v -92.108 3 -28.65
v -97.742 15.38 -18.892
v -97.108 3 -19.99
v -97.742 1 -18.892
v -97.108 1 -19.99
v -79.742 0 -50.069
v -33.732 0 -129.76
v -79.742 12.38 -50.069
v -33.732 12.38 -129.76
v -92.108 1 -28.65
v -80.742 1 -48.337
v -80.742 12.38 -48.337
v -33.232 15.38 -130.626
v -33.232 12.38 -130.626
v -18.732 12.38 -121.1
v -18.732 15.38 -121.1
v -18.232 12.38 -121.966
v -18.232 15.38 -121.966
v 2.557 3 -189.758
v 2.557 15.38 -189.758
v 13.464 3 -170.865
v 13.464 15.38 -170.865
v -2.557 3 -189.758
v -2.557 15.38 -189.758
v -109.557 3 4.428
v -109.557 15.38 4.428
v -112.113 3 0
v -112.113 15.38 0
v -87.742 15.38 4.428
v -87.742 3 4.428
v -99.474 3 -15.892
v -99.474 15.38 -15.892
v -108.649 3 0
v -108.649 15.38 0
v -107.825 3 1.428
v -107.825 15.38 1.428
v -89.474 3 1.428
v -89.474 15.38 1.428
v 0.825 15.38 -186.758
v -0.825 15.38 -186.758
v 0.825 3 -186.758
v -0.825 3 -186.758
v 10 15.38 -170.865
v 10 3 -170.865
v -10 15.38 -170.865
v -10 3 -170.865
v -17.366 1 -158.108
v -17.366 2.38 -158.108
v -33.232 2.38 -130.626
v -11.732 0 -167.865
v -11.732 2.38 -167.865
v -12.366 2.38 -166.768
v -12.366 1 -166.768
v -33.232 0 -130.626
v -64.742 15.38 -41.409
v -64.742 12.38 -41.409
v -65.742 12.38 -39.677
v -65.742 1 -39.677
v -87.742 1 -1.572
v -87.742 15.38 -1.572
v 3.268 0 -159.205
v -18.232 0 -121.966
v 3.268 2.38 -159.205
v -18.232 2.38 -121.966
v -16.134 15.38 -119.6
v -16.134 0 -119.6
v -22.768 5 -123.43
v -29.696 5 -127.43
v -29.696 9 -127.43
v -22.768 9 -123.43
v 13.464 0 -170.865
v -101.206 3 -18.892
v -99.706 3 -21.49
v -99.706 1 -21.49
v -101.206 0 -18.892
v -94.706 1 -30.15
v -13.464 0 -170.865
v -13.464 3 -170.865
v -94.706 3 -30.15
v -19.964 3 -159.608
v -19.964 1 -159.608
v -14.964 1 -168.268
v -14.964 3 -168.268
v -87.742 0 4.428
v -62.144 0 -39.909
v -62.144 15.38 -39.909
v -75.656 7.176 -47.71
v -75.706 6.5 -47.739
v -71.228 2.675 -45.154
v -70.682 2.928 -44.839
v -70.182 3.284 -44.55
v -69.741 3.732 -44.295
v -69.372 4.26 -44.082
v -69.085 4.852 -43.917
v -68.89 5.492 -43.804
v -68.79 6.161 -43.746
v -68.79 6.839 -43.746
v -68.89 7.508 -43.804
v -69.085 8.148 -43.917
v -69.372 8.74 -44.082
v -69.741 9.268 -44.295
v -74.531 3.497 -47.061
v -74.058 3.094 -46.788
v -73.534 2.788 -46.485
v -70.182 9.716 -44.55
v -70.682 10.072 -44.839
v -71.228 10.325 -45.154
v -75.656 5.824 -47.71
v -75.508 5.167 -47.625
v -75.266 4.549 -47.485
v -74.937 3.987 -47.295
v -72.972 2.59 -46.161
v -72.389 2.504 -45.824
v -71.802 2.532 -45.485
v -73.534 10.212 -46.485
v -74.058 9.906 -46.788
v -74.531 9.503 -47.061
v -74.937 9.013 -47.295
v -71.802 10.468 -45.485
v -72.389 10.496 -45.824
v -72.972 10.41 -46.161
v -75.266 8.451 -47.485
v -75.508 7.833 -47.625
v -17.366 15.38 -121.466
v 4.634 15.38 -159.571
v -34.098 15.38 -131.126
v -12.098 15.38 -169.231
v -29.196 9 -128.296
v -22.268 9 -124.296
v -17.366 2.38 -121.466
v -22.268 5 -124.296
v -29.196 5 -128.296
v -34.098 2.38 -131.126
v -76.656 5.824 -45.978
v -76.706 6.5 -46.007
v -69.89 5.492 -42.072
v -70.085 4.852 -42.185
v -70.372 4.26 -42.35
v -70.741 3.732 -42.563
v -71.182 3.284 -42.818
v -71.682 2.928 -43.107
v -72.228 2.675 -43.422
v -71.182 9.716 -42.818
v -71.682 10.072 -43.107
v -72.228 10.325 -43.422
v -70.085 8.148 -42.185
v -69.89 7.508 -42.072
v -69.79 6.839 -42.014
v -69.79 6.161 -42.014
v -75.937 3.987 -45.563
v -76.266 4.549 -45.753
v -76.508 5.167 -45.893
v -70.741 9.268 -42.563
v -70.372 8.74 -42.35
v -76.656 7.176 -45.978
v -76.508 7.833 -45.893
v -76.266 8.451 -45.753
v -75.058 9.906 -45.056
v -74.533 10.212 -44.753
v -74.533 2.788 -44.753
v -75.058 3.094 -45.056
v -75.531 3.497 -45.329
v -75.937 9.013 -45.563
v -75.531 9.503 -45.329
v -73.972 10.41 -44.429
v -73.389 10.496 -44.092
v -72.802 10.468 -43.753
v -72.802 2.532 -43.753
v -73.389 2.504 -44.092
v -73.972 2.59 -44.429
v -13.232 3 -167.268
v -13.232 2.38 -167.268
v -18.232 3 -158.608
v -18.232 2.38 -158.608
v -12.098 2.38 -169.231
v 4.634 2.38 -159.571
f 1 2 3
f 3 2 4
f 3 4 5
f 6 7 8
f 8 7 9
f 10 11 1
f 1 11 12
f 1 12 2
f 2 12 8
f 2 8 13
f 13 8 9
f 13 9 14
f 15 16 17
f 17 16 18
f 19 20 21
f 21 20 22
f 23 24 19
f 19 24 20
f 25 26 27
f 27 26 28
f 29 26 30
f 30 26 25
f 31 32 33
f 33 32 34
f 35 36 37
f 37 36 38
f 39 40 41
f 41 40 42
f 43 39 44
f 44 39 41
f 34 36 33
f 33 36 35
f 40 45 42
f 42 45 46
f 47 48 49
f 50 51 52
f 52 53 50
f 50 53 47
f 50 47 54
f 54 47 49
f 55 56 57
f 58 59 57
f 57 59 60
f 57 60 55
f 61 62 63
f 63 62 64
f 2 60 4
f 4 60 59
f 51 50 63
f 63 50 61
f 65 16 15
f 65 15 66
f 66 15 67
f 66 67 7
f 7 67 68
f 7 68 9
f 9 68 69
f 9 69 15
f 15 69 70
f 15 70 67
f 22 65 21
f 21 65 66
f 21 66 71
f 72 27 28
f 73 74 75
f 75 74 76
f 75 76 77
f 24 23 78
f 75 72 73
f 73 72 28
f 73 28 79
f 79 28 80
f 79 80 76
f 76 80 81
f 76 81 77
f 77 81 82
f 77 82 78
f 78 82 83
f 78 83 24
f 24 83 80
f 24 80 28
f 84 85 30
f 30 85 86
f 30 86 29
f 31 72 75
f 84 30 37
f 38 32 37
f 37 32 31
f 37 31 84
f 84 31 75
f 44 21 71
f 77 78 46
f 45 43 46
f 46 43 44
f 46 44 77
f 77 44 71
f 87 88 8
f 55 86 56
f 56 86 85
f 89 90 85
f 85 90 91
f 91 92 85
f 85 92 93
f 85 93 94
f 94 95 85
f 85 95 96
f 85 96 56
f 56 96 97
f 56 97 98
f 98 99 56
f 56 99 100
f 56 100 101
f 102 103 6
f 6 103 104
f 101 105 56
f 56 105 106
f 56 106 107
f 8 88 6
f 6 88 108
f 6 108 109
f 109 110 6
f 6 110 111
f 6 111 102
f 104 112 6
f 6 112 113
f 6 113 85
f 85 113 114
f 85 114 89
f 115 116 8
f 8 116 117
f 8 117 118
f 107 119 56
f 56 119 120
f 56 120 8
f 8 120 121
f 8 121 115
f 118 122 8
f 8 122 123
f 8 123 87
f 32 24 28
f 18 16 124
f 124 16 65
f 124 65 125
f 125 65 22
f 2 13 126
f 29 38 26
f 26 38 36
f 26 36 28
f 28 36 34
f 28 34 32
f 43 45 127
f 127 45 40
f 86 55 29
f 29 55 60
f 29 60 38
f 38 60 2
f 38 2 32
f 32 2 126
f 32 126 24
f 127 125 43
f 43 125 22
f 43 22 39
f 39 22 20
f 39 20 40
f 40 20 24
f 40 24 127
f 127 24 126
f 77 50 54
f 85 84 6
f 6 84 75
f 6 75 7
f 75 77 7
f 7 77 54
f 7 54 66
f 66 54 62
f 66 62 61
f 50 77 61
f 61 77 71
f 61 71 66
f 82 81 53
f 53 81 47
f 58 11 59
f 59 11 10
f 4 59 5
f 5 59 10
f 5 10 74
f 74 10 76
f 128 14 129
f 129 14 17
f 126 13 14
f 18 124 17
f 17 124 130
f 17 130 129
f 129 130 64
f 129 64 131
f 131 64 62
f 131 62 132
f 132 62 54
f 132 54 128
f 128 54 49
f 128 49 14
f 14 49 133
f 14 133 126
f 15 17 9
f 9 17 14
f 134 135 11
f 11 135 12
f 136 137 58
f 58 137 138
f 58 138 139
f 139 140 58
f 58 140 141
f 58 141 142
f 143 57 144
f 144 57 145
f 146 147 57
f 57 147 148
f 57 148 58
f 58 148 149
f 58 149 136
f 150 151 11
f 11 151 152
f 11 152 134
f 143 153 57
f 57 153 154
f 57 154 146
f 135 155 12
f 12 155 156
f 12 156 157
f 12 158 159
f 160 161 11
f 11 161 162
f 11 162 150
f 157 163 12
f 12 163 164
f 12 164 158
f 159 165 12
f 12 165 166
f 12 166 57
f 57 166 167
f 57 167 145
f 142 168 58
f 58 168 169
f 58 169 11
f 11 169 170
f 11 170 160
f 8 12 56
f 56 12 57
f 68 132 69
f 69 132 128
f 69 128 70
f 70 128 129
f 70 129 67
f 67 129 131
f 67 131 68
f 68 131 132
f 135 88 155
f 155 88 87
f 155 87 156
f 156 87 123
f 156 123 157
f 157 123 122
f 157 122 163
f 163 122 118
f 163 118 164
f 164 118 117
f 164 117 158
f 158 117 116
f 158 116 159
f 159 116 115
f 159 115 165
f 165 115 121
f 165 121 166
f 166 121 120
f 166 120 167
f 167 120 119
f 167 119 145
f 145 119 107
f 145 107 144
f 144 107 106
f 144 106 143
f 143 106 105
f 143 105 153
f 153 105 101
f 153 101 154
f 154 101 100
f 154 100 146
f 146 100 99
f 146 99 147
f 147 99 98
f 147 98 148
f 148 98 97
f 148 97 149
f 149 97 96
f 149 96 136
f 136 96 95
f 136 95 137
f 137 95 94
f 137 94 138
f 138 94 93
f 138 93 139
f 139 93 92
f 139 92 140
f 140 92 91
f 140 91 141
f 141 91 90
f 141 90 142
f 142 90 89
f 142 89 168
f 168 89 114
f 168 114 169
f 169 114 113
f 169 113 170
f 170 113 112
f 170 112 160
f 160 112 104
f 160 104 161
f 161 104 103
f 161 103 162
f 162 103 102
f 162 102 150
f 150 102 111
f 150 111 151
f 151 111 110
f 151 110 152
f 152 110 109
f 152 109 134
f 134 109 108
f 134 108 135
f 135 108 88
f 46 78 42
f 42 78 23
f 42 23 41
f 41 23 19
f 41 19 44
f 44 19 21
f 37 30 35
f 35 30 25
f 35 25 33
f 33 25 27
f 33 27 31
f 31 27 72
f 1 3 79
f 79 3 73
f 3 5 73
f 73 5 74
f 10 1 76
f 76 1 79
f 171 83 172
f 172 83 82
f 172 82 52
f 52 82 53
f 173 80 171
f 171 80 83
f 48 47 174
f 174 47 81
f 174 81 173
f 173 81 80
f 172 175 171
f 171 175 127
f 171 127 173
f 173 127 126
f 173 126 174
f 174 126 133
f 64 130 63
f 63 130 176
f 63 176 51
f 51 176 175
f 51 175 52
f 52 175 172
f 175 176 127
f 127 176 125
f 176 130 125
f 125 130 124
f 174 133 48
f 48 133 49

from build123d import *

# Parameters (mm, degrees)
BOSS_EXTRUDE2_DEPTH = 15.38
BOSS_EXTRUDE3_DEPTH = 1
BOSS_EXTRUDE4_DEPTH = 12.38
CUT_EXTRUDE1_DEPTH  = 8.26
SKETCH12_R          = 4
CUT_EXTRUDE2_DEPTH  = 8.26
CUT_EXTRUDE3_DEPTH  = 3
SKETCH16_W          = 10
SKETCH16_H          = 2
CUT_EXTRUDE4_DEPTH  = 3
CUT_EXTRUDE5_DEPTH  = 13
CUT_EXTRUDE6_DEPTH  = 1


with BuildPart() as part:
    # Sketch1 → Boss-Extrude2 (new body)
    with BuildSketch(Plane(origin=(0, 0, 0), x_dir=(1, 0, 0), z_dir=(0, 1, 0))):
        Polygon((-33.232050802, 130.626242439), (-11.732050802, 167.865334802), (3.267949197, 159.205080764), (-18.232050803, 121.965988402), (-18.732050803, 121.099962998), (-16.133974592, 119.599962998), (13.464101619, 170.865334801), (2.556624332, 189.757639644), (-2.556624322, 189.757639644), (-112.11324865, 2e-09), (-109.556624323, -4.428203228), (-87.74166975, -4.428203228), (-62.14359354, 39.908965344), (-64.74166975, 41.408965344), (-65.74166975, 39.676914536), (-82.74166975, 10.232050807), (-87.74166975, 1.57179677), (-97.741669749, 18.892304845), (-80.741669749, 48.337168573), (-79.741669749, 50.069219381), (-33.732050802, 129.760217035), align=None)
        Polygon((-89.473720558, -1.42820323), (-107.824573519, -1.42820323), (-108.649147039, 0), (-99.473720558, 15.892304845), align=None, mode=Mode.SUBTRACT)
        Polygon((-9.999999996, 170.865334801), (-0.824573515, 186.757639646), (0.824573508, 186.757639646), (10.000000004, 170.865334801), align=None, mode=Mode.SUBTRACT)
    extrude(amount=BOSS_EXTRUDE2_DEPTH)

    # Sketch1<11> → Boss-Extrude3 (add)
    with BuildSketch(Plane(origin=(0, 0, 0), x_dir=(1, 0, 0), z_dir=(0, 1, 0))):
        Polygon((3.267949197, 159.205080764), (-11.732050802, 167.865334802), (-33.232050802, 130.626242439), (-18.232050803, 121.965988402), align=None)
        Polygon((-65.74166975, 39.676914536), (-80.741669749, 48.337168573), (-97.741669749, 18.892304845), (-87.74166975, 1.57179677), align=None)
    extrude(amount=BOSS_EXTRUDE3_DEPTH)

    # Sketch1<12> → Boss-Extrude4 (add)
    with BuildSketch(Plane(origin=(0, 0, 0), x_dir=(1, 0, 0), z_dir=(0, 1, 0))):
        Polygon((-18.232050803, 121.965988402), (-33.232050802, 130.626242439), (-33.732050802, 129.760217035), (-18.732050803, 121.099962998), align=None)
        Polygon((-64.74166975, 41.408965344), (-79.741669749, 50.069219381), (-80.741669749, 48.337168573), (-65.74166975, 39.676914536), align=None)
    extrude(amount=BOSS_EXTRUDE4_DEPTH)

    # Sketch10 → Cut-Extrude1 (cut)
    with BuildSketch(Plane(origin=(47.754809476, 0, -82.713756318), x_dir=(0.8660254037844418, 0, 0.49999999999999456), z_dir=(-0.4999999999999946, 0, 0.8660254037844419))):
        Polygon((-85.432921433, 5), (-81.432921433, 5), (-81.432921433, 9), (-89.432921433, 9), (-89.432921433, 5), align=None)
    extrude(amount=-CUT_EXTRUDE1_DEPTH, mode=Mode.SUBTRACT)

    # Sketch12 → Cut-Extrude2 (cut)
    with BuildSketch(Plane(origin=(1.745190528, 0, -3.022758664), x_dir=(-0.866025403784436, 0, -0.5000000000000047), z_dir=(0.5000000000000047, 0, -0.866025403784436))):
        with Locations((85.432921433, 6.5)):
            Circle(SKETCH12_R)
    extrude(amount=-CUT_EXTRUDE2_DEPTH, mode=Mode.SUBTRACT)

    # Sketch15 → Cut-Extrude3 (cut)
    with BuildSketch(Plane.XZ):
        Polygon((-87.74166975, 4.428203228), (-109.556624323, 4.428203228), (-112.11324865, -2e-09), (-101.205771363, -18.892304845), align=None)
        Polygon((13.464101619, -170.865334801), (2.556624332, -189.757639644), (-2.556624322, -189.757639644), (-13.464101609, -170.865334801), align=None)
    extrude(amount=-CUT_EXTRUDE3_DEPTH, mode=Mode.SUBTRACT)

    # Sketch16 → Cut-Extrude4 (cut)
    with BuildSketch(Plane(origin=(-84.084936489, 0, -48.546460716), x_dir=(-0.4999999999999999, 0, 0.8660254037844386), z_dir=(-0.8660254037844387, 0, -0.49999999999999994))):
        with Locations((-133.242624333, 2)):
            Rectangle(SKETCH16_W, SKETCH16_H)
        with Locations((26.242624323, 2)):
            Rectangle(SKETCH16_W, SKETCH16_H)
    extrude(amount=-CUT_EXTRUDE4_DEPTH, mode=Mode.SUBTRACT)

    # Sketch17 → Cut-Extrude5 (cut)
    with BuildSketch(Plane(origin=(0, 15.38, 0), x_dir=(1, 0, 0), z_dir=(0, 1, 0))):
        Polygon((-18.232050803, 121.965988402), (-17.366025399, 121.465988402), (4.633974601, 159.571106168), (-12.098076205, 169.231360205), (-34.098076205, 131.126242439), (-33.232050802, 130.626242439), align=None)
    extrude(amount=-CUT_EXTRUDE5_DEPTH, mode=Mode.SUBTRACT)

    # Sketch18 → Cut-Extrude6 (cut)
    with BuildSketch(Plane.XZ):
        Polygon((-18.232050803, -121.965988402), (3.267949197, -159.205080764), (-11.732050802, -167.865334802), (-33.232050802, -130.626242439), align=None)
    extrude(amount=-CUT_EXTRUDE6_DEPTH, mode=Mode.SUBTRACT)


solid = part.part
